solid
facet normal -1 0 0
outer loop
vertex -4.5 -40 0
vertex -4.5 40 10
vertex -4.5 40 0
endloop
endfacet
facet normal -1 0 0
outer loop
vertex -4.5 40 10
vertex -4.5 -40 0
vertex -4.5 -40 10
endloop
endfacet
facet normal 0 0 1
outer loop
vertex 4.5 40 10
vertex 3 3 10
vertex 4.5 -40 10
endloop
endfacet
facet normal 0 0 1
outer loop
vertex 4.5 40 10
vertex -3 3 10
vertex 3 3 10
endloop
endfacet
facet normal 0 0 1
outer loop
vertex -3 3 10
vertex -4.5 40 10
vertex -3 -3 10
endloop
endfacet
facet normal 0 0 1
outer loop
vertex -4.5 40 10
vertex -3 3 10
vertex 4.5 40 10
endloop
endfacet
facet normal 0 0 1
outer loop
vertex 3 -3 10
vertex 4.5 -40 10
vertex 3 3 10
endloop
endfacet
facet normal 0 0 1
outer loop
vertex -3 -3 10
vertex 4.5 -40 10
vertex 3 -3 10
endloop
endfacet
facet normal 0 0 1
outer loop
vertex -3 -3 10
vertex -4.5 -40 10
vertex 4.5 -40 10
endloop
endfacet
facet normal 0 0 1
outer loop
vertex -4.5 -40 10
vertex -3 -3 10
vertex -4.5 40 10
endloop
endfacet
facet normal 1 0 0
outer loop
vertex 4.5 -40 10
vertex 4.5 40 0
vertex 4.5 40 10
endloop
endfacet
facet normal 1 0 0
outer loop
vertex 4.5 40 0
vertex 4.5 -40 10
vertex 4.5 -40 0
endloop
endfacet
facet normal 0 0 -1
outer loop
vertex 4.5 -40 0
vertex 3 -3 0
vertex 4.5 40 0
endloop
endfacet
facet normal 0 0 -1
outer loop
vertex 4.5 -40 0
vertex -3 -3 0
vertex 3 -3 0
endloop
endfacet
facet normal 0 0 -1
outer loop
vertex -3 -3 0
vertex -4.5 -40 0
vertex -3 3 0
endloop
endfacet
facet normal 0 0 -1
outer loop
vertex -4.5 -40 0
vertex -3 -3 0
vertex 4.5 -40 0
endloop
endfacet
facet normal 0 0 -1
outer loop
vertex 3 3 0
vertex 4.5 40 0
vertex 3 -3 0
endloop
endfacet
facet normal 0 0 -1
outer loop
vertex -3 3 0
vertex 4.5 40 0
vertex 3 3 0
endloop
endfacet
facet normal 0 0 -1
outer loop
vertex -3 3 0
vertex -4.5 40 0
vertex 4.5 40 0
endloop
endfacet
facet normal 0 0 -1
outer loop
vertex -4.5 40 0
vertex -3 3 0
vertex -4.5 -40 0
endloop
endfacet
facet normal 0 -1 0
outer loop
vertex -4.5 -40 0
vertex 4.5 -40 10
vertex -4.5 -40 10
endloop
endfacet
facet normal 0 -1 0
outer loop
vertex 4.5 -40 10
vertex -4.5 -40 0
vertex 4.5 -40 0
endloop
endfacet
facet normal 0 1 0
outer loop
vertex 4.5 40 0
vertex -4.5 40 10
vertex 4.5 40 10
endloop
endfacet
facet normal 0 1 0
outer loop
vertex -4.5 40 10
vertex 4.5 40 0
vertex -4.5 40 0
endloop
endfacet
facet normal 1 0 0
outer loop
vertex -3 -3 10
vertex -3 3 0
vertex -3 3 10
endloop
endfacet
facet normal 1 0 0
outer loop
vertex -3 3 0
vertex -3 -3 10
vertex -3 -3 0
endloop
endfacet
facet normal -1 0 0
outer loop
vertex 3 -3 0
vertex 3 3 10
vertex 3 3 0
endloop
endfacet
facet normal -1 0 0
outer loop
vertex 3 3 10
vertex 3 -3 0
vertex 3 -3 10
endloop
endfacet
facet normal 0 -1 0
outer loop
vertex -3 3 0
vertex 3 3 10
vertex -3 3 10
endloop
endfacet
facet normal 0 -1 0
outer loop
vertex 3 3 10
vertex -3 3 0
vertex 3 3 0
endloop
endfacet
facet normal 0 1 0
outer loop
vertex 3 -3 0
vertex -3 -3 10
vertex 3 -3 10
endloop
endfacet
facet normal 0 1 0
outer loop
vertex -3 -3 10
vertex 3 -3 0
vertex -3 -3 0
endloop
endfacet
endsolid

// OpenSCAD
difference() {
    translate([-4.5, -40, 0]) cube([9, 80, 10]);
    translate([-3, -3, 0]) cube([6, 6, 10]);
}
